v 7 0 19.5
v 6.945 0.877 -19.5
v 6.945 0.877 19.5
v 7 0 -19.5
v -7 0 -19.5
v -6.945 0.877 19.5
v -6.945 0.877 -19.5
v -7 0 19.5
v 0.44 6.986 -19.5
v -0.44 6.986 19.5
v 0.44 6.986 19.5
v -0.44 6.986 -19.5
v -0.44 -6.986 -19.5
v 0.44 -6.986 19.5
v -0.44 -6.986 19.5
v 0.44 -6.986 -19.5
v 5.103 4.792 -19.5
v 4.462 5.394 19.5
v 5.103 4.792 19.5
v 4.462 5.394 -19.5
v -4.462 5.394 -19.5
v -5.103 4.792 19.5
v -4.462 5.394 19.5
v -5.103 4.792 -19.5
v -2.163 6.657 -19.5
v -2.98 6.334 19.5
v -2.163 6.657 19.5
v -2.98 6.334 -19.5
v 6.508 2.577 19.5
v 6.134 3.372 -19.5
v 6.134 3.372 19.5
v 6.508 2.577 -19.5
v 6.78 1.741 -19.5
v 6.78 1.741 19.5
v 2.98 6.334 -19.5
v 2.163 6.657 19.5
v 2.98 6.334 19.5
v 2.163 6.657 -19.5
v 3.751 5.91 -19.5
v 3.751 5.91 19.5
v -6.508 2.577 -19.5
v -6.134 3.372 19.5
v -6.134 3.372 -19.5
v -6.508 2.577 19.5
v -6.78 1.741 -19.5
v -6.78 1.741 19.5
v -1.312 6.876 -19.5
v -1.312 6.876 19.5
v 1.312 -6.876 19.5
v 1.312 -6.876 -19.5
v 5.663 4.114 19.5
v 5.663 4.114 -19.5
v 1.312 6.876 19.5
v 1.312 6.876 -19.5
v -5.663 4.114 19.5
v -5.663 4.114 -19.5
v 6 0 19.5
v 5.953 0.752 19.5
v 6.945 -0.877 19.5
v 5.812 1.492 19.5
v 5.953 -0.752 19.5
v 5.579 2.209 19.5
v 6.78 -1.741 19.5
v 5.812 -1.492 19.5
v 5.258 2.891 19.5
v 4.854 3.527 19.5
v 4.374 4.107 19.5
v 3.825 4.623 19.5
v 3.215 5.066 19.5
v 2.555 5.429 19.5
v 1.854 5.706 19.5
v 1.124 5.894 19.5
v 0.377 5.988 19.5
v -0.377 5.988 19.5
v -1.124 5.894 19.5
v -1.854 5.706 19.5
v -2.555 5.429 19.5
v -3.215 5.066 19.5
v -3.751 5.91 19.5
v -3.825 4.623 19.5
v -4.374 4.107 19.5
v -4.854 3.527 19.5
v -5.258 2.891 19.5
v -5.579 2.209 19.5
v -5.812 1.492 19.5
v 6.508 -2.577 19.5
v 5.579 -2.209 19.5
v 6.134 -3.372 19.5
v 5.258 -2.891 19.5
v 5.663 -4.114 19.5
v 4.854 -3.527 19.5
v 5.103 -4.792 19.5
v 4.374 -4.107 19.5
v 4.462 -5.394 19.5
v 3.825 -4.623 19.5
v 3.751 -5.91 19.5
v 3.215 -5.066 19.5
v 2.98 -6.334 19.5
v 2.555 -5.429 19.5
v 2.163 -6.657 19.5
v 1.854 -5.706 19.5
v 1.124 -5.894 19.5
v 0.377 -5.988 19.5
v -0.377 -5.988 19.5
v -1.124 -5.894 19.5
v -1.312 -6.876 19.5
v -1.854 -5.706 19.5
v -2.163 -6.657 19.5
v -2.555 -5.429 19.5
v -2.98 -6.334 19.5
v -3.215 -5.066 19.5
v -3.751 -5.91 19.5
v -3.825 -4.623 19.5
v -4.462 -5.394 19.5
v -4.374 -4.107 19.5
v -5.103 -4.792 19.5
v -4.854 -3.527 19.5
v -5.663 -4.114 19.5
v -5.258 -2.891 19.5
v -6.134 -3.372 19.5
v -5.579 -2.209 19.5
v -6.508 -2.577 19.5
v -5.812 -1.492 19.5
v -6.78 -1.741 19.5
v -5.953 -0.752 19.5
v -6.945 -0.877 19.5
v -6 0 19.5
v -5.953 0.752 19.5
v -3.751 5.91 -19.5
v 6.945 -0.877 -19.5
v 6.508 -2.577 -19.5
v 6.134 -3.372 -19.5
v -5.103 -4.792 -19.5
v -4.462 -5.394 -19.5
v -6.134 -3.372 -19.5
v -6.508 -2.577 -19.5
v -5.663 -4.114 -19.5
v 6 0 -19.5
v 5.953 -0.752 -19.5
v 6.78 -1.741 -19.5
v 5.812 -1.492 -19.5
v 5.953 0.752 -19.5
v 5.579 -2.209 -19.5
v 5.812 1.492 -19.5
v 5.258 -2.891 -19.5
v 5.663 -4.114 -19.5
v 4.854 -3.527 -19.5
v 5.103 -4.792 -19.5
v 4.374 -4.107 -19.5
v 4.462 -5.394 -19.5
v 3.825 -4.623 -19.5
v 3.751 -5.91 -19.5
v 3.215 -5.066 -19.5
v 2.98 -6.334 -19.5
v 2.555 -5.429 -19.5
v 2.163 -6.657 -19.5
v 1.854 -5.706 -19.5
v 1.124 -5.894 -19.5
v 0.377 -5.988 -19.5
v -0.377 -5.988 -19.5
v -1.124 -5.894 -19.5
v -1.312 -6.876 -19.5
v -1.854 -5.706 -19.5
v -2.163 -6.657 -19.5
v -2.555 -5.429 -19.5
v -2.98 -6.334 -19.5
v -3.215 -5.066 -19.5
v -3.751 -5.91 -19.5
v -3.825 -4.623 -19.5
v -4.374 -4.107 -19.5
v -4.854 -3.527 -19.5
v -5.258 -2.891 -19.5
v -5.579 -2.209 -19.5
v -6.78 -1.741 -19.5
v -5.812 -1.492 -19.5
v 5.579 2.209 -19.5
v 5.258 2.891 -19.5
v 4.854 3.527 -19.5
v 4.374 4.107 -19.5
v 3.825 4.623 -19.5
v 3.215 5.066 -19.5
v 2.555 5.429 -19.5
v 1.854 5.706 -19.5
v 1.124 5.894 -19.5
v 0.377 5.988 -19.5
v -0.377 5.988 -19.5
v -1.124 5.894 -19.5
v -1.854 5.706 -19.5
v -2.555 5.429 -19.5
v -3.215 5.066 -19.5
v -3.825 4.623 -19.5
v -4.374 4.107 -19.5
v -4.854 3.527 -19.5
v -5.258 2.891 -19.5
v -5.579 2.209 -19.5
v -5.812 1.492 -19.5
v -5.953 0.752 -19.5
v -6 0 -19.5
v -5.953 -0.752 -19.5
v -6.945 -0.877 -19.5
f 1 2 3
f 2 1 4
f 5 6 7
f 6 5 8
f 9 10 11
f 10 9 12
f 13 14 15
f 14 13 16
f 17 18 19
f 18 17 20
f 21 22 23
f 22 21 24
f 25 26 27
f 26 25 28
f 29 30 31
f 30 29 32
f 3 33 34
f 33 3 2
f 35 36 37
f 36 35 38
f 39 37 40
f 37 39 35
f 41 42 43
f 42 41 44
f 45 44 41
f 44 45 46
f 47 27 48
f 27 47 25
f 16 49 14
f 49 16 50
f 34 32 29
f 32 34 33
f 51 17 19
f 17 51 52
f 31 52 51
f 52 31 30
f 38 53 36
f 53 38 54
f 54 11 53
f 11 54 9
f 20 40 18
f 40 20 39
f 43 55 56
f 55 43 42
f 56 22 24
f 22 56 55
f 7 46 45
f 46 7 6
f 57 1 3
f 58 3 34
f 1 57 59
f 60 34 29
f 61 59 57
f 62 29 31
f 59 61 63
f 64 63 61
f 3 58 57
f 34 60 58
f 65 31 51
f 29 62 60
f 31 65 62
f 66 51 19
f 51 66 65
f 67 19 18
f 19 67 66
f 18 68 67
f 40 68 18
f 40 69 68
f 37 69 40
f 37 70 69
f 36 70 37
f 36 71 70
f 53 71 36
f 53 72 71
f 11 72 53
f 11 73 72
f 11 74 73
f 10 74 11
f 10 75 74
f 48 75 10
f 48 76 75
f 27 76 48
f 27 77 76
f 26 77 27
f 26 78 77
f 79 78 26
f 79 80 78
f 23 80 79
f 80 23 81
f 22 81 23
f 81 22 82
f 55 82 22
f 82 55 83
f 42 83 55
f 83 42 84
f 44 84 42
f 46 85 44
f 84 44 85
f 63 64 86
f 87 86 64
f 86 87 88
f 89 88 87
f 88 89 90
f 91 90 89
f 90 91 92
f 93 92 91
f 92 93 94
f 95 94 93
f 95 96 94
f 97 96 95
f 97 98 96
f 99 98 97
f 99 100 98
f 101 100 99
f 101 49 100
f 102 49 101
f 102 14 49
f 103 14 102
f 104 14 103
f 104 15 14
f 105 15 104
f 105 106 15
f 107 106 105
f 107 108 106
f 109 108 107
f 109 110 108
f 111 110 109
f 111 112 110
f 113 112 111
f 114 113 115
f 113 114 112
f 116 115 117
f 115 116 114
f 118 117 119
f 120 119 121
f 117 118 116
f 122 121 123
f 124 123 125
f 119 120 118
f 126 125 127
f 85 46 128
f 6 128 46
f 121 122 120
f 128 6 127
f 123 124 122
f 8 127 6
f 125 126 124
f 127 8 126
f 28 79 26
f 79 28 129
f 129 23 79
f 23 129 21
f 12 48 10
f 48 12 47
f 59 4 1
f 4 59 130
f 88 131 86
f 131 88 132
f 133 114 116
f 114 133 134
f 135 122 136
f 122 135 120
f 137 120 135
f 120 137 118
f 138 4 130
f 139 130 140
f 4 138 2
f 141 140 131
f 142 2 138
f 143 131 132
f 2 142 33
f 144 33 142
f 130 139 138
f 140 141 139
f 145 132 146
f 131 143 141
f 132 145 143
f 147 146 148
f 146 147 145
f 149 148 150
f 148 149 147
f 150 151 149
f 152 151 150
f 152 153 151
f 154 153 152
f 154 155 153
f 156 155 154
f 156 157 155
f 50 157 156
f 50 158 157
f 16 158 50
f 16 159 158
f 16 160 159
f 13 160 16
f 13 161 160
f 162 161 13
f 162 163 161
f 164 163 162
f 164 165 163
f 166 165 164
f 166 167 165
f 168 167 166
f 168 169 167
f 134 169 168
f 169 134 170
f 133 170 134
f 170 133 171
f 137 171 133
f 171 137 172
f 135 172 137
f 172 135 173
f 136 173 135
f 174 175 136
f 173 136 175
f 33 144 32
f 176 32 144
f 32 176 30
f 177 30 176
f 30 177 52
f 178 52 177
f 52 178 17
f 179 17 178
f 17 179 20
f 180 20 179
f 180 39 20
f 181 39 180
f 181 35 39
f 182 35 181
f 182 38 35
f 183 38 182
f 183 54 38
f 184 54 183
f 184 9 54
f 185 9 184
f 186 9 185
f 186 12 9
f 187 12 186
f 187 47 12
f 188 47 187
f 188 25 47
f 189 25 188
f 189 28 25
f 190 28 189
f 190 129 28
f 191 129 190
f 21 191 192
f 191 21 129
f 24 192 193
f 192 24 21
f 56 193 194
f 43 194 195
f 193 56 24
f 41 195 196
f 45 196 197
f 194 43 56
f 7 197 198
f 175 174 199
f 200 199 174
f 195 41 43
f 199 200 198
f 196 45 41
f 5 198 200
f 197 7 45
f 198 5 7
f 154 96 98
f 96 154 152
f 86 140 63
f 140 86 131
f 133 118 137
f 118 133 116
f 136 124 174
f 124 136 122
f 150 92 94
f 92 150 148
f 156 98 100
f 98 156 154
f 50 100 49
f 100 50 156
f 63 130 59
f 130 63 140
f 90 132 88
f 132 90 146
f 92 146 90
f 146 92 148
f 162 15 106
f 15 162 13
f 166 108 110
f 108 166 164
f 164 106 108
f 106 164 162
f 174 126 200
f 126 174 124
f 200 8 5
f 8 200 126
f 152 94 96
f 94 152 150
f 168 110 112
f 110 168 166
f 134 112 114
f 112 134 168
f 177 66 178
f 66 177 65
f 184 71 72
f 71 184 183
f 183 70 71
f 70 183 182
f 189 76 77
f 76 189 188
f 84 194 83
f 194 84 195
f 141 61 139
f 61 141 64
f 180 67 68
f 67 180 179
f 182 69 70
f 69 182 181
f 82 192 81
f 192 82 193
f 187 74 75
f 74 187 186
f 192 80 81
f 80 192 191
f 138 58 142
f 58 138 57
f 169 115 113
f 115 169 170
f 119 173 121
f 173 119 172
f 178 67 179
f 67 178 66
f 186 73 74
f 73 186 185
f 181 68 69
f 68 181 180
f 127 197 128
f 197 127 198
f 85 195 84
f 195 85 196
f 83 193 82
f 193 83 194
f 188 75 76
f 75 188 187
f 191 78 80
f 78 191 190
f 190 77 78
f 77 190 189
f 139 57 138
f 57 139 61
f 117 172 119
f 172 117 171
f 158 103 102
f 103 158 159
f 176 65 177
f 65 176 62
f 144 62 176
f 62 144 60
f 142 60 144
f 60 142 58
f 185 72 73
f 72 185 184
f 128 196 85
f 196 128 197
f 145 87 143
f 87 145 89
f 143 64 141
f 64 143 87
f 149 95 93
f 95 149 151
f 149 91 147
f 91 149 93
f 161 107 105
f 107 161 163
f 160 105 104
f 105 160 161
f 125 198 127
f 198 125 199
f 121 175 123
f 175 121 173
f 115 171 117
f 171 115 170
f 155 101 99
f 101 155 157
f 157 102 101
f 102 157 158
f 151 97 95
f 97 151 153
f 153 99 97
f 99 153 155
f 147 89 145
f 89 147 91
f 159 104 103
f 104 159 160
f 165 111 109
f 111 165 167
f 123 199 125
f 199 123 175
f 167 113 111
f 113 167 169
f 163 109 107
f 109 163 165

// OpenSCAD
$fn = 50;


difference() {
	union() {
		translate(v = [0, 0, -19.5000000000]) {
			cylinder(h = 39, r = 7.0000000000);
		}
	}
	union() {
		translate(v = [0, 0, -100.0000000000]) {
			cylinder(h = 200, r = 6);
		}
	}
}
